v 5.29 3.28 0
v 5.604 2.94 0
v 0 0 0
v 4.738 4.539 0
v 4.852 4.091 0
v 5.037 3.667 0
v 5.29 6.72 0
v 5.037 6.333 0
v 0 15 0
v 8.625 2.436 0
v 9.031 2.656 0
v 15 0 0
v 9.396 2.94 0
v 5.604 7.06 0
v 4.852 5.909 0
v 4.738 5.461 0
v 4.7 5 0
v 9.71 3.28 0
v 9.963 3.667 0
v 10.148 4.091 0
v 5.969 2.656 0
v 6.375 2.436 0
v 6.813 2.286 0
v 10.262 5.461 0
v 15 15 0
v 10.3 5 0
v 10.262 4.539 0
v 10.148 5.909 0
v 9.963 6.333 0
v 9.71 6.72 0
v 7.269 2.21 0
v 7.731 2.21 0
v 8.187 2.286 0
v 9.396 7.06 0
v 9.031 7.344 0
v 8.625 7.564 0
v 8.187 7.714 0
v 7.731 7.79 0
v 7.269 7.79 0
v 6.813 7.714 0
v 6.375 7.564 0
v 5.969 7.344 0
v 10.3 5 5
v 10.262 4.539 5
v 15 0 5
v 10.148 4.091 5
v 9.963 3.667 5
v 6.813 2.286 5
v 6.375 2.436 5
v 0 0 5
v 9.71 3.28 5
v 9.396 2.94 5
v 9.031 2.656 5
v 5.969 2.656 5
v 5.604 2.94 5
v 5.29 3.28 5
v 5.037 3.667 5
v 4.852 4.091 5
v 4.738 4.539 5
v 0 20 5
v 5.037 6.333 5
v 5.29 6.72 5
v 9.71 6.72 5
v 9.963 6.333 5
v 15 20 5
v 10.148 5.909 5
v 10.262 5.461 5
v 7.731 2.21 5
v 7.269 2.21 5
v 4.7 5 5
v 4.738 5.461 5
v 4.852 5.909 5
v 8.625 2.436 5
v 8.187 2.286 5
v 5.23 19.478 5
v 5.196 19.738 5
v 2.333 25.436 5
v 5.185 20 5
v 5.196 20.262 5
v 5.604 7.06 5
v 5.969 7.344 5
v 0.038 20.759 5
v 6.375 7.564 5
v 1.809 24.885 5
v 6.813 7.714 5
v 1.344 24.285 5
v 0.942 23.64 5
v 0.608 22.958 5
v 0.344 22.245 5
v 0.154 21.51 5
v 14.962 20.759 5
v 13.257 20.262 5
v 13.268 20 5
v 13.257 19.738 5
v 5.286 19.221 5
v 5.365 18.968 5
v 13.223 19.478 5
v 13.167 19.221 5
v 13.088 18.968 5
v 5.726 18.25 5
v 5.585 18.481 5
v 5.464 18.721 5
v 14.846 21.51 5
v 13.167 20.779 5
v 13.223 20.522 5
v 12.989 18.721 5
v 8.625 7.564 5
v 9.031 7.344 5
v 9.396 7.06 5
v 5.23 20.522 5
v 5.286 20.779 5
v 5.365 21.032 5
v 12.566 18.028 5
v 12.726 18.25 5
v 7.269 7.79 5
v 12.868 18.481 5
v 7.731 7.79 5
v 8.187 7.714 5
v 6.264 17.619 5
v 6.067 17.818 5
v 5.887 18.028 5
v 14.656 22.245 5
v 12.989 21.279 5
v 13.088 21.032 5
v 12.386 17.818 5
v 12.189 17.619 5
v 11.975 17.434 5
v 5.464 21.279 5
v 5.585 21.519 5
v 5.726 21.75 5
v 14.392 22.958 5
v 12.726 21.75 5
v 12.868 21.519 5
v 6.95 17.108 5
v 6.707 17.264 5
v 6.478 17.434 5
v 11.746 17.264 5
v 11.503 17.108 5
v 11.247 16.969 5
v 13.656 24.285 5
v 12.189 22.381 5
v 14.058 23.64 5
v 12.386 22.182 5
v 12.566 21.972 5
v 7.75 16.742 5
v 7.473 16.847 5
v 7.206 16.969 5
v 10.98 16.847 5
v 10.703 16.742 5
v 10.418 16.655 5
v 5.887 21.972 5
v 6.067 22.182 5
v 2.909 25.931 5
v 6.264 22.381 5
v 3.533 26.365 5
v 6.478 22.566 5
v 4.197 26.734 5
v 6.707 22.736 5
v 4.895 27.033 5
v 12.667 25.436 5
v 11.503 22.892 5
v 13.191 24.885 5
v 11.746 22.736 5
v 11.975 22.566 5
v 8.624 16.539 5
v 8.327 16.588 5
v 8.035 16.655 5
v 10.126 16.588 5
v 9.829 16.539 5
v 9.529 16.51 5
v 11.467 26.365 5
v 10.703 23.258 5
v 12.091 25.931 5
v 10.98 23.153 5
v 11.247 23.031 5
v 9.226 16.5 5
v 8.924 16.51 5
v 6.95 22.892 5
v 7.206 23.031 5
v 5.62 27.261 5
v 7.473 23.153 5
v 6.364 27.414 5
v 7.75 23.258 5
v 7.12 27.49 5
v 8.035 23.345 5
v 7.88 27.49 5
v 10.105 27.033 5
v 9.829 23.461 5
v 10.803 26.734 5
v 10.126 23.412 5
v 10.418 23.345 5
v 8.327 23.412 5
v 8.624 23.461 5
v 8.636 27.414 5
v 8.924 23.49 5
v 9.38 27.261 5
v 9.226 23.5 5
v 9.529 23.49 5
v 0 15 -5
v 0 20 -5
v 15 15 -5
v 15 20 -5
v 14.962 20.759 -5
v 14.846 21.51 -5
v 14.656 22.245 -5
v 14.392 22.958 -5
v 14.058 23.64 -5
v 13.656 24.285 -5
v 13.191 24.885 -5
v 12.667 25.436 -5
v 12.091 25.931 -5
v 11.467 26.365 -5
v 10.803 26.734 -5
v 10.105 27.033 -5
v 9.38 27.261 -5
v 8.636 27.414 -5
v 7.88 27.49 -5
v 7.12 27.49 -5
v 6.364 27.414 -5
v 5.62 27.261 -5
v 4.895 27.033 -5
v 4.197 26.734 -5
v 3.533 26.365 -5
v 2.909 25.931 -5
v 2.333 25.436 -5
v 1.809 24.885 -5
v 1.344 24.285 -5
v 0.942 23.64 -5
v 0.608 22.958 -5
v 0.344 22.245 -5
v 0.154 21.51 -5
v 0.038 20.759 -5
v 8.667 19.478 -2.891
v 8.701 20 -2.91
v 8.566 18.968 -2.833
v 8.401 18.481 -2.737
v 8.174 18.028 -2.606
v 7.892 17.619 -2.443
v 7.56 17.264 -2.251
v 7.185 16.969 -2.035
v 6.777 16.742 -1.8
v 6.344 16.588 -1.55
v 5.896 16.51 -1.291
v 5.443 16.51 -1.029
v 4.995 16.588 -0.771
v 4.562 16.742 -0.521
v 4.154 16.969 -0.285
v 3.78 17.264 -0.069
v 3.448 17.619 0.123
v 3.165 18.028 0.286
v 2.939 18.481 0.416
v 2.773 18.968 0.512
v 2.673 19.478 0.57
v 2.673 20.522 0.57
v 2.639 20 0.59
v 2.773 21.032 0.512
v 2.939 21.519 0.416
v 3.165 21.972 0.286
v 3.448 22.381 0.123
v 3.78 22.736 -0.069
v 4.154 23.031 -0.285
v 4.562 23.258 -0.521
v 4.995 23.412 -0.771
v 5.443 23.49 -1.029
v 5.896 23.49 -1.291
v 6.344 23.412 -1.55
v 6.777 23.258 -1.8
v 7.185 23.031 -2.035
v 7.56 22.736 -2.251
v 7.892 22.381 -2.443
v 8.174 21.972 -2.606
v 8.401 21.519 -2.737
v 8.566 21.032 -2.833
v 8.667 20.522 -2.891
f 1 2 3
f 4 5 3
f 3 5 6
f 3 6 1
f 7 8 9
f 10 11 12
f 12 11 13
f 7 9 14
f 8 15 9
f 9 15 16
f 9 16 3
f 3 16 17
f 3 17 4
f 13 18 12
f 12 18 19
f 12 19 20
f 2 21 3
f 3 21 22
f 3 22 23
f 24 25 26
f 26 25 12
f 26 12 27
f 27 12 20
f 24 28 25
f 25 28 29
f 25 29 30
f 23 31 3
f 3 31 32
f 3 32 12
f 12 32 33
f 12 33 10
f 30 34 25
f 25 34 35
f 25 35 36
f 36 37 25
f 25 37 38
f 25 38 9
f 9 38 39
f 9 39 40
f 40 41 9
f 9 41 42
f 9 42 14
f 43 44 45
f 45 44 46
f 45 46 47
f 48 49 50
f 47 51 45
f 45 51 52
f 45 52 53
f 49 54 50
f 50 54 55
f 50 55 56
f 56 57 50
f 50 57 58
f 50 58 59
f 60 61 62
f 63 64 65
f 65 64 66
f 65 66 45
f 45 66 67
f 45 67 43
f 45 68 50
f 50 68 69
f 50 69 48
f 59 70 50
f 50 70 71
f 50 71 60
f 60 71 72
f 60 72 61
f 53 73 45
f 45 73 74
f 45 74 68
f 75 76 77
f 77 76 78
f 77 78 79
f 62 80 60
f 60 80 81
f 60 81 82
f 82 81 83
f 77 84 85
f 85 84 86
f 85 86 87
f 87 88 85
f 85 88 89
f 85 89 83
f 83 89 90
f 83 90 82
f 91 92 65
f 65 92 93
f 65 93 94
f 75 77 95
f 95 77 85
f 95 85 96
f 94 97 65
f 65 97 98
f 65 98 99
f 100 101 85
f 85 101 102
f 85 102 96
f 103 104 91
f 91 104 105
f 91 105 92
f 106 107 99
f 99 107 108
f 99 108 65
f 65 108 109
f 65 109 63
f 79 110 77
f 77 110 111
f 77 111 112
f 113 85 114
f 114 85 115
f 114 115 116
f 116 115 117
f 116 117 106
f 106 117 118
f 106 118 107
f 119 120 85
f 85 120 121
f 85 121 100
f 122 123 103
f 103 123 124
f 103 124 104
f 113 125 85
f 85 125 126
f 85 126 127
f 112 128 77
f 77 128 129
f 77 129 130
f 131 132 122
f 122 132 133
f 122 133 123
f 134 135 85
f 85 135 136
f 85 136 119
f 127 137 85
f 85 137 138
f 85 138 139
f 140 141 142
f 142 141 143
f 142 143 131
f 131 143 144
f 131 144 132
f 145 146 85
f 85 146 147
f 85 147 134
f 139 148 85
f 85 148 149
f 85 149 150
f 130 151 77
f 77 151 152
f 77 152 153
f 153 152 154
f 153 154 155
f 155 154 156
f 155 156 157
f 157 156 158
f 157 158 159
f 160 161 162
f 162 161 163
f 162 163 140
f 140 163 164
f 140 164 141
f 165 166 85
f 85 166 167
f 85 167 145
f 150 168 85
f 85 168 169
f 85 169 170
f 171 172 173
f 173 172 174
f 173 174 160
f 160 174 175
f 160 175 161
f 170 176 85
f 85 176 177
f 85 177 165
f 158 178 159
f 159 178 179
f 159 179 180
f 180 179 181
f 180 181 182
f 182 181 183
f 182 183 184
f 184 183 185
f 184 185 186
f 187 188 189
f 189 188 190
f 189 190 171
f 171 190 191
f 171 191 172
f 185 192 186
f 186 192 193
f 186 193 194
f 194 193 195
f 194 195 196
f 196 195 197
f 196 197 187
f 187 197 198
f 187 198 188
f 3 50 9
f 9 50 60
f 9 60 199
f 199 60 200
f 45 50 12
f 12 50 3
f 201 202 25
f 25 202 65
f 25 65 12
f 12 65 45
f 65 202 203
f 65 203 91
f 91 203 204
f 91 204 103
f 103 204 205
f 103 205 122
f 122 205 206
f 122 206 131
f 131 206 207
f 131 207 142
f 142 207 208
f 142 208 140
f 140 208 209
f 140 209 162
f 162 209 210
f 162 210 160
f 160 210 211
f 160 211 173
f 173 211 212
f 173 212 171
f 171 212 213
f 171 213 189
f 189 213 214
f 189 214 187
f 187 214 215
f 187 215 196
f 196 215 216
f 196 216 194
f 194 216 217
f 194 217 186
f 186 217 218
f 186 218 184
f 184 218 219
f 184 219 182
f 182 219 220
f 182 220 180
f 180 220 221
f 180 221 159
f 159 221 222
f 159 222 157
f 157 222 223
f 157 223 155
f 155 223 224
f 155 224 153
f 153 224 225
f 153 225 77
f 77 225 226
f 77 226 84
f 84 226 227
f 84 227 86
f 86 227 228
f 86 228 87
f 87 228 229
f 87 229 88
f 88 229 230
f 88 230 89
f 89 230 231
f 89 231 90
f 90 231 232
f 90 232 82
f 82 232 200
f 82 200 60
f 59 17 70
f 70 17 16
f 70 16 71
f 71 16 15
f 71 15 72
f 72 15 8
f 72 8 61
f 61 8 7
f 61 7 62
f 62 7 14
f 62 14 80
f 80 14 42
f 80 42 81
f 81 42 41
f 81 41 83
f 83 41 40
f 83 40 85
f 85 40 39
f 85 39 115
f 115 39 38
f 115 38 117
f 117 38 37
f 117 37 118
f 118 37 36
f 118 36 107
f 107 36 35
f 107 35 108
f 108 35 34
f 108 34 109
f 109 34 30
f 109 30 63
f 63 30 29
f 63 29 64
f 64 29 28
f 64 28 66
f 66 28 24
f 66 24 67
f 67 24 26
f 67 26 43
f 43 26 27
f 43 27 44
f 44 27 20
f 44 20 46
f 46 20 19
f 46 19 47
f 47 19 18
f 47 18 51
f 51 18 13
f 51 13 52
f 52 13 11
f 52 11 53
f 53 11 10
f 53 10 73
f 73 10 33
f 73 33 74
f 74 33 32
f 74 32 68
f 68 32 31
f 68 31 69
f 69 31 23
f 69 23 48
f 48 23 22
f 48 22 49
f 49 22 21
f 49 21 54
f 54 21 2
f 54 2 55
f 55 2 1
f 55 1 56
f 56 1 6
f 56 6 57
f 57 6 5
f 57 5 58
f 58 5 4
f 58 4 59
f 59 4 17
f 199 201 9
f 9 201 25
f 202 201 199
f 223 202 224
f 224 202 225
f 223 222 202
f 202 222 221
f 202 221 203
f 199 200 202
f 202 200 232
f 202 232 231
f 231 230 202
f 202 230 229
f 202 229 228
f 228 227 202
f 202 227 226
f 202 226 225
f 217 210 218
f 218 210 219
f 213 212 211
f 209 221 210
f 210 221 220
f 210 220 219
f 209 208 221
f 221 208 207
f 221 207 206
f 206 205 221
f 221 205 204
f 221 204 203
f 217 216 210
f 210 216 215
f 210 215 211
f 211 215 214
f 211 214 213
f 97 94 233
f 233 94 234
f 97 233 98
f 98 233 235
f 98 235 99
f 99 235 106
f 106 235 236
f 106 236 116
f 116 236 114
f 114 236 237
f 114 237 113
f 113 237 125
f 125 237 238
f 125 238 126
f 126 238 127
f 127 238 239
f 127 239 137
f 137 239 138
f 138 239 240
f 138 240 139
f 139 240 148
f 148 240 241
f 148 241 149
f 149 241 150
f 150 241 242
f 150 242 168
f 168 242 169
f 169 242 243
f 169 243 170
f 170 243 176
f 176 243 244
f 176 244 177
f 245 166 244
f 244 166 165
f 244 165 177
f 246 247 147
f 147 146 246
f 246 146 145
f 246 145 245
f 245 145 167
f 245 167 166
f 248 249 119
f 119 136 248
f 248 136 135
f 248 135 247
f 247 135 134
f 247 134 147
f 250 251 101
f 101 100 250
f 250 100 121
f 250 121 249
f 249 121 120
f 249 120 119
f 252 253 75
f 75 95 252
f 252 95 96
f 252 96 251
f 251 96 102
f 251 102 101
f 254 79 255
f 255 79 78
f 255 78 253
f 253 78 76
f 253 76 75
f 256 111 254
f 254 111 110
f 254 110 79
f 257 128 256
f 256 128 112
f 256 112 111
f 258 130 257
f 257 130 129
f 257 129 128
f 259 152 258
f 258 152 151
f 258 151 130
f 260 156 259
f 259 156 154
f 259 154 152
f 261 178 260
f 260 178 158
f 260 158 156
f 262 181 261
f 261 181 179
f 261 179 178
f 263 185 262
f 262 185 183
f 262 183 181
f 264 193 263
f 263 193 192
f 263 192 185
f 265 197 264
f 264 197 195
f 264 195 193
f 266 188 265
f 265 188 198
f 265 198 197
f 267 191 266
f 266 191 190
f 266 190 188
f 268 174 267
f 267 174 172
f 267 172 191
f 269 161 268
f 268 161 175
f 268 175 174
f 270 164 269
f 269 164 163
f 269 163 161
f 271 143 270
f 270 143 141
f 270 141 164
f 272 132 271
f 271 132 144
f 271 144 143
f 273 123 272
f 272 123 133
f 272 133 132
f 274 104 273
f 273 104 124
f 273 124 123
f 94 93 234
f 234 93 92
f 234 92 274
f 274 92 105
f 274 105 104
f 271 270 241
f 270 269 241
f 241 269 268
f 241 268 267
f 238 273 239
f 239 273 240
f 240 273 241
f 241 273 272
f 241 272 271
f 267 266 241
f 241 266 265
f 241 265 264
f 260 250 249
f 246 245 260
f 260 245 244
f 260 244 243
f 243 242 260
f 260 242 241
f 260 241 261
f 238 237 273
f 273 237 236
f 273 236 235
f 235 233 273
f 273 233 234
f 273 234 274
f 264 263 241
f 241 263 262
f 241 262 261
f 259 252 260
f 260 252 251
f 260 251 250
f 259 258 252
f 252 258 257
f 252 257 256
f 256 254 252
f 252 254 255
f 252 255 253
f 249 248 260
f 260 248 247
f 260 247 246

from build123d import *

# Parameters (mm, degrees)
SKETCH2_R           = 2.8
BOSS_EXTRUDE1_DEPTH = 5
BOSS_EXTRUDE2_DEPTH = 5
SKETCH4_R           = 3.5
CUT_EXTRUDE1_DEPTH  = 10


with BuildPart() as part:
    # Sketch2 → Boss-Extrude1 (new body)
    with BuildSketch(Plane.XY):
        with BuildLine():
            Line((0, 0), (15, 0))
            Line((15, 0), (15, 20))
            ThreePointArc((15, 20), (7.5, 27.5), (0, 20))
            Line((0, 20), (0, 0))
        make_face()
        with Locations((7.5, 5)):
            Circle(SKETCH2_R, mode=Mode.SUBTRACT)
    extrude(amount=BOSS_EXTRUDE1_DEPTH)

    # Sketch3 → Boss-Extrude2 (add)
    with BuildSketch(Plane(origin=(0, 0, 0), x_dir=(-1, 0, 0), z_dir=(0, 0, -1))):
        with BuildLine():
            Line((-15, 20), (-15, 15))
            Line((-15, 15), (0, 15))
            Line((0, 15), (0, 20))
            ThreePointArc((0, 20), (-7.5, 27.5), (-15, 20))
        make_face()
    extrude(amount=BOSS_EXTRUDE2_DEPTH)

    # Sketch4 → Cut-Extrude1 (cut)
    with BuildSketch(Plane(origin=(5.915063509, 0, 10.245190528), x_dir=(0, 1, 0), z_dir=(0.5, 0, 0.866025404))):
        with Locations((20, -5.490381057)):
            Circle(SKETCH4_R)
    extrude(amount=-CUT_EXTRUDE1_DEPTH, mode=Mode.SUBTRACT)


solid = part.part
